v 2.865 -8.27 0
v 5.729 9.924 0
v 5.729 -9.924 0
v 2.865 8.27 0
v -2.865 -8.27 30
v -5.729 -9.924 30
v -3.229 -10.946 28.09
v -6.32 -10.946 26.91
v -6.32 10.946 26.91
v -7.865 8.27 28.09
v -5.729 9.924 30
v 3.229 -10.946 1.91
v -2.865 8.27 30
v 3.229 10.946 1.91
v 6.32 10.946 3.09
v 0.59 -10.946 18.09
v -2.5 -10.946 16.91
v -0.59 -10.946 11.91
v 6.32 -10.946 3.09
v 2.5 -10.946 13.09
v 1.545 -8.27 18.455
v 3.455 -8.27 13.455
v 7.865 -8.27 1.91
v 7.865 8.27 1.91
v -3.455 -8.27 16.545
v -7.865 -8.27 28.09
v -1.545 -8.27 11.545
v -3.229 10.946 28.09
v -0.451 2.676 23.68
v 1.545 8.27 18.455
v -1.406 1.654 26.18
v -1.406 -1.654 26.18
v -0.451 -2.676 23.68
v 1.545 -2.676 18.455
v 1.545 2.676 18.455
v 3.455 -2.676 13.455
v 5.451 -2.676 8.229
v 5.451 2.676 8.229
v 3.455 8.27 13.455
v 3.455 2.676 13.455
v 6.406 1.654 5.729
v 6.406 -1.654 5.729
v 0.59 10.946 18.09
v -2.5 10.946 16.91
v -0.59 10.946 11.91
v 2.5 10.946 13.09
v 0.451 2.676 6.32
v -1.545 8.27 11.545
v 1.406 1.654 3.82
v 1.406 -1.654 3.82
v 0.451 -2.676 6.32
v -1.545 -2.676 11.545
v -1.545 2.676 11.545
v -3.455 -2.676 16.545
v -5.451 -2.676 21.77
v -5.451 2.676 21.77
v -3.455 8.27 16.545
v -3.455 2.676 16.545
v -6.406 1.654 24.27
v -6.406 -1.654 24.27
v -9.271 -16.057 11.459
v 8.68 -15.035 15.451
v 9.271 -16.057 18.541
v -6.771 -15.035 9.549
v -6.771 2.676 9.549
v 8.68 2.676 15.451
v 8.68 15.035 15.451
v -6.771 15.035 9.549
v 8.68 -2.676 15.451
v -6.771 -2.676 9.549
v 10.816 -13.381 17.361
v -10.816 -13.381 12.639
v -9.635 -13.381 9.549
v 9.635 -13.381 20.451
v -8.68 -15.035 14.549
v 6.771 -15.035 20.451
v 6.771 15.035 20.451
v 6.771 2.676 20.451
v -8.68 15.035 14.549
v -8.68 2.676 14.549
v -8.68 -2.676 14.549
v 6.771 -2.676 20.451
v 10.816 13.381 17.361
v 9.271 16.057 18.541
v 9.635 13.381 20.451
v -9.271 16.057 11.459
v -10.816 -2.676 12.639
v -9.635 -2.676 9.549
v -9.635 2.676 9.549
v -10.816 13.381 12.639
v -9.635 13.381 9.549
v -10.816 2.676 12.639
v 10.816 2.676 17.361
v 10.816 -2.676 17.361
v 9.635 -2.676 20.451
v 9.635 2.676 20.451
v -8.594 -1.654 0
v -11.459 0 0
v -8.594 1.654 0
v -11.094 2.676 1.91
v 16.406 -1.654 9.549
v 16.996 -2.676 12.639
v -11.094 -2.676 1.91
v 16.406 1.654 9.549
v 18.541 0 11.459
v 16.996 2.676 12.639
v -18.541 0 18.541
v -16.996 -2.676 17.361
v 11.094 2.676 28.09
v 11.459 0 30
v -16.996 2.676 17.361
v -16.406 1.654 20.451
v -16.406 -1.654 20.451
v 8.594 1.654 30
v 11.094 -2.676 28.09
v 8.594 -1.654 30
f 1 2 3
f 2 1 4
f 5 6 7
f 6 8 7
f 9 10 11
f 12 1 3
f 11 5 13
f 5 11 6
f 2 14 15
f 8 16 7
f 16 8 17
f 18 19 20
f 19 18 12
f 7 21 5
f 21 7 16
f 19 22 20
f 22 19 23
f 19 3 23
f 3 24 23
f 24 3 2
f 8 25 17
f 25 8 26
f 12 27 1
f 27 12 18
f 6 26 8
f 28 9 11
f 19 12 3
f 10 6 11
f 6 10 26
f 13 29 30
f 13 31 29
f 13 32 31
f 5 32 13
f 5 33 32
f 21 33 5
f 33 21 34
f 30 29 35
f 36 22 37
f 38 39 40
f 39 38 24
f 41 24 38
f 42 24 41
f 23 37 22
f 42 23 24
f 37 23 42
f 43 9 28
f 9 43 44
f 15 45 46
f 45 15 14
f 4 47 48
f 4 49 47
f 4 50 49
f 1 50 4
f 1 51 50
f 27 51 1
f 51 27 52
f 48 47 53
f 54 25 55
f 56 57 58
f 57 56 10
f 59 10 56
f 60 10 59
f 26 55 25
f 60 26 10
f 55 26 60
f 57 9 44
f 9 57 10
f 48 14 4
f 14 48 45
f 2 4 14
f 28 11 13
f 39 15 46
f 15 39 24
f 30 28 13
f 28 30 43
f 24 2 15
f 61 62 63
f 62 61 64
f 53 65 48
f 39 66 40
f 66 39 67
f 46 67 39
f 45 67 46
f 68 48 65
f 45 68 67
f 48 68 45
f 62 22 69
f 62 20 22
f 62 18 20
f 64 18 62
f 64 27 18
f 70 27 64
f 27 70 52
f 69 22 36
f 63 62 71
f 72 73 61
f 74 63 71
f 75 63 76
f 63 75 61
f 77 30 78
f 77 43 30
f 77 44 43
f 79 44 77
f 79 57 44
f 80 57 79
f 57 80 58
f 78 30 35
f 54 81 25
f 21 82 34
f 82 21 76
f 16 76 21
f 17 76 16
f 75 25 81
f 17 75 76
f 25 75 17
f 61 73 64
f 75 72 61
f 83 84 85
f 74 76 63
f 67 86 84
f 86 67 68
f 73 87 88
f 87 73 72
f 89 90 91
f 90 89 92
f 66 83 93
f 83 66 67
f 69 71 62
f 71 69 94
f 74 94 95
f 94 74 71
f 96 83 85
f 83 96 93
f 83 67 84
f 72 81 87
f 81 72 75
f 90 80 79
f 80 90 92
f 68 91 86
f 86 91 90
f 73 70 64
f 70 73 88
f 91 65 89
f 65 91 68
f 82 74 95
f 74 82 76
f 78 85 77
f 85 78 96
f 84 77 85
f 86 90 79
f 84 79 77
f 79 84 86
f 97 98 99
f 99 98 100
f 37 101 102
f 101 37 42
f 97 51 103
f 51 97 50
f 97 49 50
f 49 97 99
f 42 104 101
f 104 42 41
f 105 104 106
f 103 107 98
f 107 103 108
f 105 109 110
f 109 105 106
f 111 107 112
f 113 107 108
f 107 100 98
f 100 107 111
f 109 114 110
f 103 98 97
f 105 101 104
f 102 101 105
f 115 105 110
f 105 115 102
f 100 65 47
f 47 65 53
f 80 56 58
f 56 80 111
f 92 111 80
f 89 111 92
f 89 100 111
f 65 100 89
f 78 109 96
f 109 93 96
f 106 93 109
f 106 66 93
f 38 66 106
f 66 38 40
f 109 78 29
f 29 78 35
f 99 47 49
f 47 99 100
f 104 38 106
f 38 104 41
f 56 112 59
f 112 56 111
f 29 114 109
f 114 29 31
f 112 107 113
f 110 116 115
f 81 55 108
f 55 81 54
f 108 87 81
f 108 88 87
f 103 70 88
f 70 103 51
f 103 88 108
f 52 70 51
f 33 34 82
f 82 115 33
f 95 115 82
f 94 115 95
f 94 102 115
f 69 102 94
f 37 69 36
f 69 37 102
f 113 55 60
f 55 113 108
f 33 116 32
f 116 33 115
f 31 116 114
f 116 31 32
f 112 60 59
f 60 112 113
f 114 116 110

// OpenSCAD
// shape height
sh = 30;
// border width
bw = 5;

include <polyhedra.scad>;

translate([0, 0, sh / 2]) 
    face_rotate(icosahedron) 
        icosahedron2();

ivert = icosahedron[0];
iface = icosahedron[1];

ifr = face_dist(icosahedron);

ipd = diameter(icosahedron);

module icosahedron0() {
    poly_fill0(icosahedron, ipd, bw);
}

module icosahedron2() {
    s = (sh - bw) / 2 / ifr;
    module h4(a, b, c, d) {
        hull() {
            translate(ivert[a] * s) icosahedron0();
            translate(ivert[b] * s) icosahedron0();
            translate(ivert[c] * s) icosahedron0();
            translate(ivert[d] * s) icosahedron0();
        }
    }
    h4(0, 1, 10, 11);
    h4(4, 5, 6, 7);
    h4(2, 3, 8, 9);
}
